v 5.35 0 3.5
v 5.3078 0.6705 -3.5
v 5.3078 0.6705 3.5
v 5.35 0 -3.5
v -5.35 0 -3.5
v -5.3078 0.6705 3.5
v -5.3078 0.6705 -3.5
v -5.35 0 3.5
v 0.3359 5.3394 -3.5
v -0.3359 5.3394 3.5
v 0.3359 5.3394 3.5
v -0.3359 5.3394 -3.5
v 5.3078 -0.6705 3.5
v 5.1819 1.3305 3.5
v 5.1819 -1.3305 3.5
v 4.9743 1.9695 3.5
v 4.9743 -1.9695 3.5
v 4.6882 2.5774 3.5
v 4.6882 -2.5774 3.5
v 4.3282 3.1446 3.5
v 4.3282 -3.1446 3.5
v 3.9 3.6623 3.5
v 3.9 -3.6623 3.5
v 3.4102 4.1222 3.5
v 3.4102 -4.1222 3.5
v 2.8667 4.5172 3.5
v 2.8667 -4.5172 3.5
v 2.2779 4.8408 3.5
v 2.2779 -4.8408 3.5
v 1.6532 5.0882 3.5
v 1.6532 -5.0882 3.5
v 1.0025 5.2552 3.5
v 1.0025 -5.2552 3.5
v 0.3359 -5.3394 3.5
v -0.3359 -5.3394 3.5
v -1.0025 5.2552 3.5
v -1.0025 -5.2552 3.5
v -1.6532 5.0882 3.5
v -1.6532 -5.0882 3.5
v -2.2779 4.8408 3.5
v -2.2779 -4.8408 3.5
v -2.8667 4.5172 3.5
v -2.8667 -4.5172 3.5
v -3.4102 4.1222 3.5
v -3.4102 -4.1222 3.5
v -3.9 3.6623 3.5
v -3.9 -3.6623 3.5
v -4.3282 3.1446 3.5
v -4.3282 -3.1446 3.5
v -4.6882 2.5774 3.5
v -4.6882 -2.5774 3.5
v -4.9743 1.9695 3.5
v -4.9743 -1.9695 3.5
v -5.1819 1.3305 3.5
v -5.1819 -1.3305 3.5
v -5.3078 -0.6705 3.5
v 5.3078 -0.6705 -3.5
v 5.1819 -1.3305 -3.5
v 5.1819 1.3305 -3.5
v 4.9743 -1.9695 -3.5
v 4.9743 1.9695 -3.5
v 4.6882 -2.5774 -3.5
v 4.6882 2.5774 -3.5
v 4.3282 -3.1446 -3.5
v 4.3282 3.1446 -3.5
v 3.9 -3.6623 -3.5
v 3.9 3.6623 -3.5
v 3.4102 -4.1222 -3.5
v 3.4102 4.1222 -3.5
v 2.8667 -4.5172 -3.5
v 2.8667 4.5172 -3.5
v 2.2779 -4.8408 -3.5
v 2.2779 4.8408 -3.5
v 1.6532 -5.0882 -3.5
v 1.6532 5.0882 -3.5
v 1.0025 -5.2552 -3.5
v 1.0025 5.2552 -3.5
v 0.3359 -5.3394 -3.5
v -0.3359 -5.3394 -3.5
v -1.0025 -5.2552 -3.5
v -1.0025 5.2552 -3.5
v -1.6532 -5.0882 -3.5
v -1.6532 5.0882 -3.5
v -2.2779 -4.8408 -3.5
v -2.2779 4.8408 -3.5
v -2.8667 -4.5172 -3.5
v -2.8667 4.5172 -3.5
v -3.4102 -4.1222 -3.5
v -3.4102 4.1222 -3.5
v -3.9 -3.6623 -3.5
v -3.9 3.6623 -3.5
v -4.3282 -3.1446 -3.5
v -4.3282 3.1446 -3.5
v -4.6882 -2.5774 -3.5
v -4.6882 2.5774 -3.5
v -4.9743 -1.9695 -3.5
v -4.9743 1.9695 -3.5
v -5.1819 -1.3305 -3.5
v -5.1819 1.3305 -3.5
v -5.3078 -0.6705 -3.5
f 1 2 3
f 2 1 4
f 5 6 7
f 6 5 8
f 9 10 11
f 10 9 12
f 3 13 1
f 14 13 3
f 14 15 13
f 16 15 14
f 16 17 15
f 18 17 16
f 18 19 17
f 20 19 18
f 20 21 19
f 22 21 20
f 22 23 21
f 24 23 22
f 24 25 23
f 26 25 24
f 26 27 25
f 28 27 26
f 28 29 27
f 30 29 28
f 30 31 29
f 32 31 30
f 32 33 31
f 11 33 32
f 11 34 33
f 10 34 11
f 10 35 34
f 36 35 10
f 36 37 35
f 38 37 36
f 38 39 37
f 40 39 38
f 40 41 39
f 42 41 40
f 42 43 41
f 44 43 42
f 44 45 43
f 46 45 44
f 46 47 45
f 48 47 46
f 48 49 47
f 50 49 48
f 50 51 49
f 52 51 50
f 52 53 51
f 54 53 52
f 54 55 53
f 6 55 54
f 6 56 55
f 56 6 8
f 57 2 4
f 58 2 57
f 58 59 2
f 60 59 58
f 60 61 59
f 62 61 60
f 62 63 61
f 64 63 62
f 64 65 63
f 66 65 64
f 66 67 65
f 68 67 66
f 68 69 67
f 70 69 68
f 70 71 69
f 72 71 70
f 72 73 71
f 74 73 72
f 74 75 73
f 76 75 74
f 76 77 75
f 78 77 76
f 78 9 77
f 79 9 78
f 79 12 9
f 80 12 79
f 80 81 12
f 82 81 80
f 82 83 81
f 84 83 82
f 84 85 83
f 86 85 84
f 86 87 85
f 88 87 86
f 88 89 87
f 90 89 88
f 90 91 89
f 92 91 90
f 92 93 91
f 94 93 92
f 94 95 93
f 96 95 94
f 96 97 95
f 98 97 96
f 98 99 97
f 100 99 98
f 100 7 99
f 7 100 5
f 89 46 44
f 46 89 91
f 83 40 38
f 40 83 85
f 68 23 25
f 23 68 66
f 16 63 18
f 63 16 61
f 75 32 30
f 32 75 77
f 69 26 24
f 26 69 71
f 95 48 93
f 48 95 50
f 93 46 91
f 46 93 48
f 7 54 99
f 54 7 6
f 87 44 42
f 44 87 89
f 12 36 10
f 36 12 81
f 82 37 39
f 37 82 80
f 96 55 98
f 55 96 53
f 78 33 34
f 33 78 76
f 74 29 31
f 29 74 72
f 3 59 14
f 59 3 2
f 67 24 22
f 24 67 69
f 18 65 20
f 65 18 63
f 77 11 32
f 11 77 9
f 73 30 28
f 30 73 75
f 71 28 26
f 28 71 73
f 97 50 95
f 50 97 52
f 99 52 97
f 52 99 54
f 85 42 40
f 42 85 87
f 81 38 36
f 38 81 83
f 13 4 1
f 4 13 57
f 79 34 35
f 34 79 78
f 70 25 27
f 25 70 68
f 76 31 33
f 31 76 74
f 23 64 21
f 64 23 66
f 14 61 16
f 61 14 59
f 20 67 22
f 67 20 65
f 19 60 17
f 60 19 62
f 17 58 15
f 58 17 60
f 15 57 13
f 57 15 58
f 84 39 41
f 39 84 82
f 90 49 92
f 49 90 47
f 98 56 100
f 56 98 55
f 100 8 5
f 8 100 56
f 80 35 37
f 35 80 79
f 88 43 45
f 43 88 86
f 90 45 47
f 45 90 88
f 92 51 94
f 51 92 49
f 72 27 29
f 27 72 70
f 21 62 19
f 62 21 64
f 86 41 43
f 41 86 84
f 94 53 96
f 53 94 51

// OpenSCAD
$fn = 50;


difference() {
	union() {
		translate(v = [0, 0, -3.5000000000]) {
			cylinder(h = 7, r = 5.3500000000);
		}
	}
	union() {
		translate(v = [0, 0, -100.0000000000]) {
			cylinder(h = 200, r = 0);
		}
	}
}
